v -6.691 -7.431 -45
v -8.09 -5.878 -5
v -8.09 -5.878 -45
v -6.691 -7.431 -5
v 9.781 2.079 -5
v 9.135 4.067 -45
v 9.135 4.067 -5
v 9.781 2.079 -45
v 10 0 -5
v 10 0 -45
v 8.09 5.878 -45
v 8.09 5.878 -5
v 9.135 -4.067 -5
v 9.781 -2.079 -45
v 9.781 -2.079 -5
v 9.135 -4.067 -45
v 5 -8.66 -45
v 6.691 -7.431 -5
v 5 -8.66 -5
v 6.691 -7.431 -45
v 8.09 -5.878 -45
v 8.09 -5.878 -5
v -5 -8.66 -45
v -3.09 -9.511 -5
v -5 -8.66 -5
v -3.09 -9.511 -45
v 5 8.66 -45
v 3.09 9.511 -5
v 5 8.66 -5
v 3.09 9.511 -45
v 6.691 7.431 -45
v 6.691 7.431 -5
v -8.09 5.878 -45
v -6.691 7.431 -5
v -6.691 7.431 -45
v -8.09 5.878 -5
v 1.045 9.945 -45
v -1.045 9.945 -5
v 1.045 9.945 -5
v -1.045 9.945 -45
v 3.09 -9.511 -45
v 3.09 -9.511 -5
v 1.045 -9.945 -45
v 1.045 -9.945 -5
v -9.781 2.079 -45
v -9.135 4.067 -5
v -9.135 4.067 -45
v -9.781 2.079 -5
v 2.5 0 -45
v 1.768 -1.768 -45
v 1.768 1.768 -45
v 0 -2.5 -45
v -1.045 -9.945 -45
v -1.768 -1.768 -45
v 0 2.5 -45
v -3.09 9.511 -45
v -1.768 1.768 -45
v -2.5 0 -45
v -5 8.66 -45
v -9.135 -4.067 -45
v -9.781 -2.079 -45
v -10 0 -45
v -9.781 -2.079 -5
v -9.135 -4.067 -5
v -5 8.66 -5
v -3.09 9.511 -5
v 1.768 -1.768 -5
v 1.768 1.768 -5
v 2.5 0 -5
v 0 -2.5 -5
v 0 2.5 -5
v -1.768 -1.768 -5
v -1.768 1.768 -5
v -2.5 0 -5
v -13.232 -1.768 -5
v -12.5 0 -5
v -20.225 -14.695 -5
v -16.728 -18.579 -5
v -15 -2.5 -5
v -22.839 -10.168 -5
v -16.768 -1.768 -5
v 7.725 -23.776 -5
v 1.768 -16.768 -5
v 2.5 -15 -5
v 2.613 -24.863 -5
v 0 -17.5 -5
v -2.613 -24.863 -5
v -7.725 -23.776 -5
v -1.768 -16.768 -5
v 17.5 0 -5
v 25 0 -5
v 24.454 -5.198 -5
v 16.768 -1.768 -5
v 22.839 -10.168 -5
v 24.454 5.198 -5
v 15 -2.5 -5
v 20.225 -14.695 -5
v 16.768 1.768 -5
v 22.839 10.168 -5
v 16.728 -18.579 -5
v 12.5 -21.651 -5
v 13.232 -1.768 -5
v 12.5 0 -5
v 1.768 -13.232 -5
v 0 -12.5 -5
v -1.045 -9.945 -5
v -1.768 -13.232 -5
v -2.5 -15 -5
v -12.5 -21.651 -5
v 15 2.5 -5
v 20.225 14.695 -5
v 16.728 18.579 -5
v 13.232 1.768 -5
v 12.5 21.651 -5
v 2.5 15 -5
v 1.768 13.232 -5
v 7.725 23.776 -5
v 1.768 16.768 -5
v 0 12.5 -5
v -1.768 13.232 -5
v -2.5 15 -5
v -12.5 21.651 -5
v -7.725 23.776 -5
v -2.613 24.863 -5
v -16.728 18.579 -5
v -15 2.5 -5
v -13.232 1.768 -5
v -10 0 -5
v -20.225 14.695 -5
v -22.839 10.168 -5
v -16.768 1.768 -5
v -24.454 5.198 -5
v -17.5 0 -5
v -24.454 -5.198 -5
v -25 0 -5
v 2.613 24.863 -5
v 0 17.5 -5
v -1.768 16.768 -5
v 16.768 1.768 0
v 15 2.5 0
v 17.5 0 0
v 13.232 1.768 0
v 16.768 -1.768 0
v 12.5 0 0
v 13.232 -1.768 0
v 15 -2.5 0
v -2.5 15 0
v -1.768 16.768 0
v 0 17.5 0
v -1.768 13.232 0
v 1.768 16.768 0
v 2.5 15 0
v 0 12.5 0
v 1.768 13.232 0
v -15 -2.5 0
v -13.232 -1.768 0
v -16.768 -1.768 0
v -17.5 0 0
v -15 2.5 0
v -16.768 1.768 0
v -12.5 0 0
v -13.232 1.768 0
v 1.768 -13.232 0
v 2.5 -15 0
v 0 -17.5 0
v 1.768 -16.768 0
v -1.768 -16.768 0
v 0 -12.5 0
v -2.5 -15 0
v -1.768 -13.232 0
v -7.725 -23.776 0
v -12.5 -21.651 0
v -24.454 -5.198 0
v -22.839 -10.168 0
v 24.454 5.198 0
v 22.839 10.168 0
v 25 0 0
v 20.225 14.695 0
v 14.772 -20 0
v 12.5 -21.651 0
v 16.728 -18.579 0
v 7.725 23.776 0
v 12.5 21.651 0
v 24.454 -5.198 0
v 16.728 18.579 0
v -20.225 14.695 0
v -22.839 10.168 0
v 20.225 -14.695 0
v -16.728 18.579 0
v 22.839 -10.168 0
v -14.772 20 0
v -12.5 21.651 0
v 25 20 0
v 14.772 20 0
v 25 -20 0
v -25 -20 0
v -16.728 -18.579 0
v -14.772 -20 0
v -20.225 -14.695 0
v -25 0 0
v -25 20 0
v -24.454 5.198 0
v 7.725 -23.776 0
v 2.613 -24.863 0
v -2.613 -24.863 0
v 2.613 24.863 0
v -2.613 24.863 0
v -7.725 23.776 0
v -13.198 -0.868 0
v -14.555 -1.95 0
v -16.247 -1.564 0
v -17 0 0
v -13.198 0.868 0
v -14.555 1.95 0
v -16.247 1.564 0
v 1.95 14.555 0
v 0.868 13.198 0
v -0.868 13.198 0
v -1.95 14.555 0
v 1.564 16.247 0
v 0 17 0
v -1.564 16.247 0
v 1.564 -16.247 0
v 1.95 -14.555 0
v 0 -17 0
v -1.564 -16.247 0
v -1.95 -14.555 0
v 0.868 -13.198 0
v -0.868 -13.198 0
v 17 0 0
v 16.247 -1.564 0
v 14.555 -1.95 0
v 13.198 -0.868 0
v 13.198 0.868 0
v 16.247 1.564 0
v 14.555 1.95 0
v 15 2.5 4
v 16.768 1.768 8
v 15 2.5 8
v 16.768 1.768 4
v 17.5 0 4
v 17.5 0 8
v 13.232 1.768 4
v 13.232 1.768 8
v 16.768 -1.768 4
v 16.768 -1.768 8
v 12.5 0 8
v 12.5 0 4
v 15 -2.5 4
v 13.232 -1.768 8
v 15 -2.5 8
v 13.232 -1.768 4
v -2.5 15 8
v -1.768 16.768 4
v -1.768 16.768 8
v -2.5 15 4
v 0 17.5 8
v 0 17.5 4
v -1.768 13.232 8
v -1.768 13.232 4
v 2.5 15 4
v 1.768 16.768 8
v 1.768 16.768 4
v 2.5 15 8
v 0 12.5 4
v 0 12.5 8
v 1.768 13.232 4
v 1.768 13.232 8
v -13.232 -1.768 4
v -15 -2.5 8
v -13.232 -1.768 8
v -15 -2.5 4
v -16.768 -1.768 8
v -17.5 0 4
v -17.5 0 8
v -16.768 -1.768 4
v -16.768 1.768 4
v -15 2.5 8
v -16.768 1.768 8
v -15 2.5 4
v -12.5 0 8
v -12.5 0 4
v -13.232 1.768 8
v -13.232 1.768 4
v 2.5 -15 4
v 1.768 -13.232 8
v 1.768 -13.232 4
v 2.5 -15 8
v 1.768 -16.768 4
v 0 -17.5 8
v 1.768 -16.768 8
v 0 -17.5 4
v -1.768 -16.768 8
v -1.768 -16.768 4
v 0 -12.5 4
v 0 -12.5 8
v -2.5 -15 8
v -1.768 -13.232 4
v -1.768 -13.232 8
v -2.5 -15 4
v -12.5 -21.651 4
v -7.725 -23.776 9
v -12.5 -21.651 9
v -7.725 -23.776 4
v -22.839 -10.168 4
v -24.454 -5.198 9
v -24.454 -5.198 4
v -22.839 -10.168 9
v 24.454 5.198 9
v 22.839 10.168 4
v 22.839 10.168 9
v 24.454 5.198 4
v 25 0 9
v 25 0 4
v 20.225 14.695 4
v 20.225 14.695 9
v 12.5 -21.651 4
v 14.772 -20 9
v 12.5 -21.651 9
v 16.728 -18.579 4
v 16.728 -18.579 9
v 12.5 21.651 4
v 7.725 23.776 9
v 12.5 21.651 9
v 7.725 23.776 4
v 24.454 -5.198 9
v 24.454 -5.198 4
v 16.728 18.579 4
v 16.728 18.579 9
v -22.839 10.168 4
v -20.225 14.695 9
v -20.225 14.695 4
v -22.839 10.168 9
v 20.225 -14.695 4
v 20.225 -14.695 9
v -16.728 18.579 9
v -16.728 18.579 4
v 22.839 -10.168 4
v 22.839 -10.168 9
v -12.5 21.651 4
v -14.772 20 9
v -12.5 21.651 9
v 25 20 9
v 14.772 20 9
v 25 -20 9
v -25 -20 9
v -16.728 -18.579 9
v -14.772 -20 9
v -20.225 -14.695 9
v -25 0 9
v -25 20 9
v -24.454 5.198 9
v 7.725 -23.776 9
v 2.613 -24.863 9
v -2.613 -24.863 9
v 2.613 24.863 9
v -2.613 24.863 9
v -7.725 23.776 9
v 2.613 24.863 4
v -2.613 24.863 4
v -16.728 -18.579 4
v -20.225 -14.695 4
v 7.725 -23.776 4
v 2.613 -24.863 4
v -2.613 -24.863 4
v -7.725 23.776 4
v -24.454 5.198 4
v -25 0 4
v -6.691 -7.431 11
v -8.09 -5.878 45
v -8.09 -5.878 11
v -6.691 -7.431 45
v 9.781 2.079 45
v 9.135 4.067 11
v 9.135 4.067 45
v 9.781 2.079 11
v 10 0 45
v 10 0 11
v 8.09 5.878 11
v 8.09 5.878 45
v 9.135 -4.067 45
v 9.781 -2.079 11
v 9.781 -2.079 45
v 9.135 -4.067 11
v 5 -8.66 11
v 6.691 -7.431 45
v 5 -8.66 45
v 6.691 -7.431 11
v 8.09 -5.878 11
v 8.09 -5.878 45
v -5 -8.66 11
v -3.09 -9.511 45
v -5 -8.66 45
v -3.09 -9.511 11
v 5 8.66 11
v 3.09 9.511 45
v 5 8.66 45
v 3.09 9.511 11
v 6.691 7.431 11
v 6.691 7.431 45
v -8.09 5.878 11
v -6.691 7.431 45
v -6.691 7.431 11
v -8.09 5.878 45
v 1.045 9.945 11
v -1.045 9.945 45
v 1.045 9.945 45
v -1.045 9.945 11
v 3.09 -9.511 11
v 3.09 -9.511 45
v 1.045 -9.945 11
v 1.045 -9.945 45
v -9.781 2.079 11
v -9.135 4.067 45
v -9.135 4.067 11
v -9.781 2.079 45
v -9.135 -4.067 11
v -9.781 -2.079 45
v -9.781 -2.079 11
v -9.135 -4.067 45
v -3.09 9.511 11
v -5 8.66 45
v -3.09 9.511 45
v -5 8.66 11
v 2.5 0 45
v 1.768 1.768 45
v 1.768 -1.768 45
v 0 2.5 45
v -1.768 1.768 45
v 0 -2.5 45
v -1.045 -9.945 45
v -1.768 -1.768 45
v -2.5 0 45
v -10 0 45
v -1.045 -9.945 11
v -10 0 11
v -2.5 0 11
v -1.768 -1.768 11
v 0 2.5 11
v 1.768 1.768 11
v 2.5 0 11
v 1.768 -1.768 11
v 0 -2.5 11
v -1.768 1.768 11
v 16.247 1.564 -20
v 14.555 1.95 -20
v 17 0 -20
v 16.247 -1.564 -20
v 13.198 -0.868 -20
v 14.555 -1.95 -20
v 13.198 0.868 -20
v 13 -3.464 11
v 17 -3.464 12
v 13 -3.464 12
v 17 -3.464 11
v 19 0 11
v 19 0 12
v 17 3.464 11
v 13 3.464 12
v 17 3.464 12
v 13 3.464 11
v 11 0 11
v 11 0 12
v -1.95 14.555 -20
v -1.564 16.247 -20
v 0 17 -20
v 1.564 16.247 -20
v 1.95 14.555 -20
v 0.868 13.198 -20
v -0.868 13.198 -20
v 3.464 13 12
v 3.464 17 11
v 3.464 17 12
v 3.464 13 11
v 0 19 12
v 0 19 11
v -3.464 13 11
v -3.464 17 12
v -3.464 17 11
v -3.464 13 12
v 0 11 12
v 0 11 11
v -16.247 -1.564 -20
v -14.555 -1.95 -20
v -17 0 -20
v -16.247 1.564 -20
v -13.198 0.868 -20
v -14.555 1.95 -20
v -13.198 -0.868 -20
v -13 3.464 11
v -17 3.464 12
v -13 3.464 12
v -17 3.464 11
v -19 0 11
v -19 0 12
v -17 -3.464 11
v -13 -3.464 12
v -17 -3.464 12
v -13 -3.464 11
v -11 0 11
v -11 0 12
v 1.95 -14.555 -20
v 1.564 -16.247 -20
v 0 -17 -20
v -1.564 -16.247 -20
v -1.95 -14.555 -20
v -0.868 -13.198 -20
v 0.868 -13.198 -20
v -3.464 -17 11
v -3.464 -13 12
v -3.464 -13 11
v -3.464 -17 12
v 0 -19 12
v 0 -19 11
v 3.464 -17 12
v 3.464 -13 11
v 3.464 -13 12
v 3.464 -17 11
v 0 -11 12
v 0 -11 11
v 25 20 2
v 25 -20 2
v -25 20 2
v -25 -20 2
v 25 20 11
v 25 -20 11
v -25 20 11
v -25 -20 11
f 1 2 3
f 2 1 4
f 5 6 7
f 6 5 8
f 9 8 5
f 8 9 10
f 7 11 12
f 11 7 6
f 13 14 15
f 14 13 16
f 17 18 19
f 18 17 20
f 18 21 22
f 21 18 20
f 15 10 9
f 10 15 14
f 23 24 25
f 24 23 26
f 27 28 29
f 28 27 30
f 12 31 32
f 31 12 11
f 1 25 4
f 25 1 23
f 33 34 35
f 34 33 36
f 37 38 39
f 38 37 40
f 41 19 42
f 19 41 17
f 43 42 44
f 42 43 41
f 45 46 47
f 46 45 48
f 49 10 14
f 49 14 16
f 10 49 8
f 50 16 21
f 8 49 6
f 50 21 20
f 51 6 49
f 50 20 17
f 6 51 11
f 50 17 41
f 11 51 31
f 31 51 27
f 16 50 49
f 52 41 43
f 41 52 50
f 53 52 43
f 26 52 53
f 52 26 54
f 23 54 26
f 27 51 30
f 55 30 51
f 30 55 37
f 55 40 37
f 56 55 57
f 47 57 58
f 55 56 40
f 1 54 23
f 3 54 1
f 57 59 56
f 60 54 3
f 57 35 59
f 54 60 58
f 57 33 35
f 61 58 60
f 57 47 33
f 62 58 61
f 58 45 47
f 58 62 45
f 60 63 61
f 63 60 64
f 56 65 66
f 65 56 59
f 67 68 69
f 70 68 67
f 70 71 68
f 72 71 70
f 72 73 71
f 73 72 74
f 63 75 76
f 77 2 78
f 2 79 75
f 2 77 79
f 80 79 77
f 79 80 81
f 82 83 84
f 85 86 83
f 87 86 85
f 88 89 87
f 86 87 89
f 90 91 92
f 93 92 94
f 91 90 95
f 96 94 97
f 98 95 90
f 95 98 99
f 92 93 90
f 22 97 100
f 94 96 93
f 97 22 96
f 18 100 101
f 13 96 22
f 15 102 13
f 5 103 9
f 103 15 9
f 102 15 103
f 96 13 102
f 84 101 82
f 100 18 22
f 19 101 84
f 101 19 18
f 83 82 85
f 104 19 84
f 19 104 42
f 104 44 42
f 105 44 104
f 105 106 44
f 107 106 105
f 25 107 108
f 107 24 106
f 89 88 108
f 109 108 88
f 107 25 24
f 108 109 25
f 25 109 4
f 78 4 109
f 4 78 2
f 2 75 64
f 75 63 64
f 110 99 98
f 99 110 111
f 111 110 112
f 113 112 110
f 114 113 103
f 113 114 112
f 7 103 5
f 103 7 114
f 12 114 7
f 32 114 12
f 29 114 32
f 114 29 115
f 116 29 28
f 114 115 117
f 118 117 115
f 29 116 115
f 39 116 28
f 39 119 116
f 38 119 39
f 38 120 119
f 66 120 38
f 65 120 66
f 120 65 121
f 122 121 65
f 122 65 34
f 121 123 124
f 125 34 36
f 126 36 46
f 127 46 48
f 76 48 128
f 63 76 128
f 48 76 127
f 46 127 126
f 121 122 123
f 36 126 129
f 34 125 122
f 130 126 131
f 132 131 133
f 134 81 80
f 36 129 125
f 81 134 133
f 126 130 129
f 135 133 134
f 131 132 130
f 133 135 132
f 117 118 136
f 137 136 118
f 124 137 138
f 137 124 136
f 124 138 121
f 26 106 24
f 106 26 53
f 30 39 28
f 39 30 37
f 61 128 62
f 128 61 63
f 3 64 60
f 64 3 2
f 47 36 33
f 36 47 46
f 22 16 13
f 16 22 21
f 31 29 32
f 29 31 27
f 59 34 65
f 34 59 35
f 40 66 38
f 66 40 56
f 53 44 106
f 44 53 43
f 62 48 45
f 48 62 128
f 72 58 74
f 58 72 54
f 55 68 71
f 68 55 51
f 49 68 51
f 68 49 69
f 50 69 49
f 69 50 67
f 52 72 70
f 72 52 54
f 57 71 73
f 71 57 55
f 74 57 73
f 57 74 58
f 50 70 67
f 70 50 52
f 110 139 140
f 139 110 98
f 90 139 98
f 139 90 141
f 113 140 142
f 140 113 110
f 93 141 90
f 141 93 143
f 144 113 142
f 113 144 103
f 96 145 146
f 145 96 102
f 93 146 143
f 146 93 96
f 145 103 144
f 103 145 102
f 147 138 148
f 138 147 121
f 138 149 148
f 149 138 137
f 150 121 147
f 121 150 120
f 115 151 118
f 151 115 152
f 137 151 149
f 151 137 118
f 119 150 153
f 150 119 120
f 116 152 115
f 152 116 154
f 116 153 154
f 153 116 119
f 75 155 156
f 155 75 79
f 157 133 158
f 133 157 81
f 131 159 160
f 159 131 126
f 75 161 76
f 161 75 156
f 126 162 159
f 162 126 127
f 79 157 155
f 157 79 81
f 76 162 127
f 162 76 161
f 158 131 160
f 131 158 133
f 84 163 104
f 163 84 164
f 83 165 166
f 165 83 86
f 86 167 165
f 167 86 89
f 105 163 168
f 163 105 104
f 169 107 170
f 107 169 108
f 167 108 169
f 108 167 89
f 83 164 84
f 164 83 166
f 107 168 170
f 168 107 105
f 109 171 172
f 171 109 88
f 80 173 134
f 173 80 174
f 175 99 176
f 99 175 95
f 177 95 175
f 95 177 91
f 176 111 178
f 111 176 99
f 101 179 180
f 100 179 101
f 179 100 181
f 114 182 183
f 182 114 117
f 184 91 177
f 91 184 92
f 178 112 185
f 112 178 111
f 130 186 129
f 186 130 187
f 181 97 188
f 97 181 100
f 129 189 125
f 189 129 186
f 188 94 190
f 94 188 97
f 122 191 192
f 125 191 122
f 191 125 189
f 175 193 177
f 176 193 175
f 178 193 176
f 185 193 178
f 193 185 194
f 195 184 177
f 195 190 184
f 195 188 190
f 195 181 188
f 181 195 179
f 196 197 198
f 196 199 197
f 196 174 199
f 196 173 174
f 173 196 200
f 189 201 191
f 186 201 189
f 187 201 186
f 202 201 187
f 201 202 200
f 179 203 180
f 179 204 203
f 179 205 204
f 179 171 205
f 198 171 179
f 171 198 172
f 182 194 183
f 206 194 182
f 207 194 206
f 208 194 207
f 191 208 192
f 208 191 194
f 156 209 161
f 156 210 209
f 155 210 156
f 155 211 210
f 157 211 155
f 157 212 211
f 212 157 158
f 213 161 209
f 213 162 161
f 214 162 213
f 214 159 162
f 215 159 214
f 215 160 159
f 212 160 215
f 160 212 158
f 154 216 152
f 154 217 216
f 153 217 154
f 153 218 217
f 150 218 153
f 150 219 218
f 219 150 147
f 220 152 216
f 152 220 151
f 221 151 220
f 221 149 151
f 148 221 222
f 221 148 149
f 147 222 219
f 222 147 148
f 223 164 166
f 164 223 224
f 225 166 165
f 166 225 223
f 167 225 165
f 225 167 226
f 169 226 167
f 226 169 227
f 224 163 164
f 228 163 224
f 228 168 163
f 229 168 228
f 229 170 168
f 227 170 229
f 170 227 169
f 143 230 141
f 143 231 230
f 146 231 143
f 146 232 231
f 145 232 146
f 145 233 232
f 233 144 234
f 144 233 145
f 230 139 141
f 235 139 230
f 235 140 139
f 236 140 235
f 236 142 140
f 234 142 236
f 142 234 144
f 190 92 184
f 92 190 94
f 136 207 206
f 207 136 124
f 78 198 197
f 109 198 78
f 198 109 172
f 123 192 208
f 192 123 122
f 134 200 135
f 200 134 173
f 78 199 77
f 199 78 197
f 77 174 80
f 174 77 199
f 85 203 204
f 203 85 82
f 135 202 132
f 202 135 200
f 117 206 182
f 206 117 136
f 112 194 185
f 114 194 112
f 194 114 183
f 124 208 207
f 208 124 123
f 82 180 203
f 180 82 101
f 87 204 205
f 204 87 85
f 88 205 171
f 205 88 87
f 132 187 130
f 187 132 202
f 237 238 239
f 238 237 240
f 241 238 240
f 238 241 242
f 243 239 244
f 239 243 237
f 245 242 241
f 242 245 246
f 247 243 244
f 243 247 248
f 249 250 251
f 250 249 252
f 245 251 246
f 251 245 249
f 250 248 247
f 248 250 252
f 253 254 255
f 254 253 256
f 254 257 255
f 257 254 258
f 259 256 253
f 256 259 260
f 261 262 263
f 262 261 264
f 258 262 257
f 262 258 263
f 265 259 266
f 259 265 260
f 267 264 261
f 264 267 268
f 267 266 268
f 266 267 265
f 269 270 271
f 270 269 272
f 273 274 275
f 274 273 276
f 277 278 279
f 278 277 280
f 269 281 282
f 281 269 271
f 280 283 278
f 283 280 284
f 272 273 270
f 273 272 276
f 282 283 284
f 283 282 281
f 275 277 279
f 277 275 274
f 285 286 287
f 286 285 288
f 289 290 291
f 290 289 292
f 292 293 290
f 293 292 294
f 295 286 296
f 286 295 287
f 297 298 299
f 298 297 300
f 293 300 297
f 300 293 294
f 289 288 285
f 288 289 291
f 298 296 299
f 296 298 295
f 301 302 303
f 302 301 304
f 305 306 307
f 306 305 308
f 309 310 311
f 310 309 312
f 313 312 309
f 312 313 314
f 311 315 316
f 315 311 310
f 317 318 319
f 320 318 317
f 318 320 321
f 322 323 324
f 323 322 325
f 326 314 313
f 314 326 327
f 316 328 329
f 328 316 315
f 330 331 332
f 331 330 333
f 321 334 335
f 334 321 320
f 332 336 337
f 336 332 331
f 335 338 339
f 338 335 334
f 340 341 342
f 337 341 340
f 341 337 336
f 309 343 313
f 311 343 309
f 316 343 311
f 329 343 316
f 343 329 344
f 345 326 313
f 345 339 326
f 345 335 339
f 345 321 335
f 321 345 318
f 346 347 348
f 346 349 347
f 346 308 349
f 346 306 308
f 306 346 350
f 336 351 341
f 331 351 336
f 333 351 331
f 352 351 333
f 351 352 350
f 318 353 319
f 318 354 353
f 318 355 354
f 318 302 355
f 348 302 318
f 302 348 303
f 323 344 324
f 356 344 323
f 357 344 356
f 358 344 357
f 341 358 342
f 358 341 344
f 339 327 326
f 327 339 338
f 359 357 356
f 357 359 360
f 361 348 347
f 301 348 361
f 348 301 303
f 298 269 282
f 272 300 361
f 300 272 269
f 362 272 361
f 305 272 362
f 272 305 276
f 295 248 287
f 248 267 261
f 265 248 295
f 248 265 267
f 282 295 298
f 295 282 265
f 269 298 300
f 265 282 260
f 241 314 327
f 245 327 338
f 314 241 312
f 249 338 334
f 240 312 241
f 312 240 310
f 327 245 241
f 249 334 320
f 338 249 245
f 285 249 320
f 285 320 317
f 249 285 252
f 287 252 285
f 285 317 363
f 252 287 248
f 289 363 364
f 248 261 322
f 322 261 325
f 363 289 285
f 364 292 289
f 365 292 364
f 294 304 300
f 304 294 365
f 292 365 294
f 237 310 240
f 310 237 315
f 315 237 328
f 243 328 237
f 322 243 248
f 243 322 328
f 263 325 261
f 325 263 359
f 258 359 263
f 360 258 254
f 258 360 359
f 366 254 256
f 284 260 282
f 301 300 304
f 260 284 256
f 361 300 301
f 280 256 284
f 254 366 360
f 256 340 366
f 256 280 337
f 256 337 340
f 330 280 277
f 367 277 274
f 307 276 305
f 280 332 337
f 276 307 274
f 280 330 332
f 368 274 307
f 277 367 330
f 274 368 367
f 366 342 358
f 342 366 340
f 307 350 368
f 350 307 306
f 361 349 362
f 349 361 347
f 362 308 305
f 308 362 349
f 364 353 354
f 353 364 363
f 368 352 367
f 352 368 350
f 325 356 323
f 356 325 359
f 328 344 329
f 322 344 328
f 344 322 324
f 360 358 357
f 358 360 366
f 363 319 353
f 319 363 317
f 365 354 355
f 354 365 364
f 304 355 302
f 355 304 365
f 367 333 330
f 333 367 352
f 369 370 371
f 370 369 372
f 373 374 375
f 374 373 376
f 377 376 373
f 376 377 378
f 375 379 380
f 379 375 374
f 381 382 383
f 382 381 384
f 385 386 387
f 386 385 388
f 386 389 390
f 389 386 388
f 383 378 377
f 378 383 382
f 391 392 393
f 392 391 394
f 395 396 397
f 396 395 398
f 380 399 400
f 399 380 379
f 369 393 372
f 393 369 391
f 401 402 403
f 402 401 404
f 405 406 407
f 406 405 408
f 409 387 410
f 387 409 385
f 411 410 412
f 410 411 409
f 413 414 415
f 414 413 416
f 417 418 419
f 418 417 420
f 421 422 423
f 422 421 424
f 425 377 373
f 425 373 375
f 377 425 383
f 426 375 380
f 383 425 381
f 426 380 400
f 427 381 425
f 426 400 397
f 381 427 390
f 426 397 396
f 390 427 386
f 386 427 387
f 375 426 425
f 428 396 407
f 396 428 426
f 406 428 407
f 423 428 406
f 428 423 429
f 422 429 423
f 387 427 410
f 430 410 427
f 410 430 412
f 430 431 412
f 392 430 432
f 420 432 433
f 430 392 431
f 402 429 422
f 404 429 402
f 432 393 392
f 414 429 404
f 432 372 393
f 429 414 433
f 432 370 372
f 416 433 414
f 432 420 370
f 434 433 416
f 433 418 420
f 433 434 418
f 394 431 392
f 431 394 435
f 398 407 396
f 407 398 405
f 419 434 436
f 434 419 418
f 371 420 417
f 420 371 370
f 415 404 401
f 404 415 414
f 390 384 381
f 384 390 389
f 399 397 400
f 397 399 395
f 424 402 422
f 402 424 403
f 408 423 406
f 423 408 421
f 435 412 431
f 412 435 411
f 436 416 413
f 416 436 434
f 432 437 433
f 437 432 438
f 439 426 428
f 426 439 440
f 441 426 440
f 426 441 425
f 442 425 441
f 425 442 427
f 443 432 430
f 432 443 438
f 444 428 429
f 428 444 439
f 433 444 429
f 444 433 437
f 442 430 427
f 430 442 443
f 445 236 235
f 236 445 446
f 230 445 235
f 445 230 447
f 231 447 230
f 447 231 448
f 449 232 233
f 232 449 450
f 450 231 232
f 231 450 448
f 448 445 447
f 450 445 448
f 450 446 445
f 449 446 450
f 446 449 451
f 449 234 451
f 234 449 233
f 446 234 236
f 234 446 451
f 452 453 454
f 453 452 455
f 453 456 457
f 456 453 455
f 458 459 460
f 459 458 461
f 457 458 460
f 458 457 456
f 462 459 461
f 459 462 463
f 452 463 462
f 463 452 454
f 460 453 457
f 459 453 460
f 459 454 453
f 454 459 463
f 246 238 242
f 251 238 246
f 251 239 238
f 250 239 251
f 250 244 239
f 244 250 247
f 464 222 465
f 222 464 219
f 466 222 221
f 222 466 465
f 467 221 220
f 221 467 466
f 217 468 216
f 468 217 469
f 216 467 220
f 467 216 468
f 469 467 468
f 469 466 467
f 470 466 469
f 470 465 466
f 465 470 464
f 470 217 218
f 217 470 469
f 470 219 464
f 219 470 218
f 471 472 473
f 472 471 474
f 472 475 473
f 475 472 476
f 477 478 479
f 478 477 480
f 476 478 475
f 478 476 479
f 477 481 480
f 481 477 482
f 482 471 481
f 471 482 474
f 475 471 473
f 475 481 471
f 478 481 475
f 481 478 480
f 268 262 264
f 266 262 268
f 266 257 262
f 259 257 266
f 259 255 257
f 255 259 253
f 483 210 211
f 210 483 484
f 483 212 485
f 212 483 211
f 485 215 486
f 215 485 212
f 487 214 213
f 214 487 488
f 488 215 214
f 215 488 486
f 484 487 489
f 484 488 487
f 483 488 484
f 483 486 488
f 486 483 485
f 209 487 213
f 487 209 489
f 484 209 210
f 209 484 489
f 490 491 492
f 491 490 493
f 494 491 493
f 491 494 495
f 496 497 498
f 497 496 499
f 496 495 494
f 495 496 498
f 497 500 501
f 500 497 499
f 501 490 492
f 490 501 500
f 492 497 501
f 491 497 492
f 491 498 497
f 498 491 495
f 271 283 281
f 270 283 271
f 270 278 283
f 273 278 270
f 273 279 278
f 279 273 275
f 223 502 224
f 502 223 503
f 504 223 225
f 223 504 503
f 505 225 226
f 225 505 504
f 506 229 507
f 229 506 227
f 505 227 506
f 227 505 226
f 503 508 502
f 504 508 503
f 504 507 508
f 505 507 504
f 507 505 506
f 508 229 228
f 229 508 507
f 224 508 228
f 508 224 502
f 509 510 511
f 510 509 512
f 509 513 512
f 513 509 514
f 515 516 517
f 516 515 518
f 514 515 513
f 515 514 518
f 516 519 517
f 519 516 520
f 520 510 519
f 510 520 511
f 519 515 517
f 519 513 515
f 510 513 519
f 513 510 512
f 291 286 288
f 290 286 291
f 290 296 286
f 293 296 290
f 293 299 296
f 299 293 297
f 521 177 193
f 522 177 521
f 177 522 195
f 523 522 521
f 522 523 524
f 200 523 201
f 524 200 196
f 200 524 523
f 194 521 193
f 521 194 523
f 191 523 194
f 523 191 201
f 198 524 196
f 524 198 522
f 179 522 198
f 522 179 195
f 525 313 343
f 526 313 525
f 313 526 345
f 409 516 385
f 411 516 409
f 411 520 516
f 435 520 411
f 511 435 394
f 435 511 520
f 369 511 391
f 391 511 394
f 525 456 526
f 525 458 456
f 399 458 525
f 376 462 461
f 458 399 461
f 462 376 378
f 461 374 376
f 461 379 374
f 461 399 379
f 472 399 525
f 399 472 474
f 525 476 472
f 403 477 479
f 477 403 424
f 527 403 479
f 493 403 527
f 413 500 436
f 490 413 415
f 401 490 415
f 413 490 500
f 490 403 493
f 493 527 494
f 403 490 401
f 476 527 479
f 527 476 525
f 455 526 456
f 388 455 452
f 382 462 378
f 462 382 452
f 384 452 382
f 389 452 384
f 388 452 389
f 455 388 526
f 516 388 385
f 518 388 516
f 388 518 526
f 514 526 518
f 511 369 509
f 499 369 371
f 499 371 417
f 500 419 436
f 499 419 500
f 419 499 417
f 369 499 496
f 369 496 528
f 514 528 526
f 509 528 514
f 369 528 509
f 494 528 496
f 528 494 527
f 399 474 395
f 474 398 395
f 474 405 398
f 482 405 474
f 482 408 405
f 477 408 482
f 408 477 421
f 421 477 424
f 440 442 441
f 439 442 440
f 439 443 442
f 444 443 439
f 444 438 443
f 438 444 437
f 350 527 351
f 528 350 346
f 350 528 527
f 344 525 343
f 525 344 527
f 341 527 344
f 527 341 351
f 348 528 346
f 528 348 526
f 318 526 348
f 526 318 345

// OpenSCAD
// Parameters
shaft_diameter = 20;
shaft_length = 40;
flange_diameter = 50;
flange_thickness = 5;
bolt_hole_diameter = 5;
bolt_diameter = 4;
bolt_length = 20;
nut_diameter = 8;
nut_thickness = 4;
flexible_element_thickness = 2;
flexible_element_width = 40;
flexible_element_length = 50;
bolt_spacing = 30;

// Module for shaft
module shaft() {
    difference() {
        cylinder(h = shaft_length, d = shaft_diameter, center = true);
        cylinder(h = shaft_length, d = bolt_hole_diameter, center = true);
    }
}

// Module for flange plate
module flange_plate() {
    difference() {
        cylinder(h = flange_thickness, d = flange_diameter, center = true);
        for (i = [0:3]) {
            rotate([0, 0, i * 90])
                translate([bolt_spacing / 2, 0, 0])
                cylinder(h = flange_thickness + 2, d = bolt_hole_diameter, center = true);
        }
    }
}

// Module for flexible element
module flexible_element() {
    translate([0, 0, -flexible_element_thickness / 2])
        cube([flexible_element_length, flexible_element_width, flexible_element_thickness], center = true);
}

// Module for bolt
module bolt() {
    cylinder(h = bolt_length, d = bolt_diameter, center = true);
}

// Module for nut
module nut() {
    cylinder(h = nut_thickness, d = nut_diameter, $fn = 6, center = true);
}

// Assembly
module flexible_coupling() {
    // Input shaft
    translate([0, 0, -shaft_length / 2 - flange_thickness])
        shaft();

    // First flange plate
    translate([0, 0, -flange_thickness / 2])
        flange_plate();

    // First flexible element
    translate([0, 0, flexible_element_thickness])
        flexible_element();

    // Second flange plate
    translate([0, 0, flange_thickness / 2 + flexible_element_thickness * 2])
        flange_plate();

    // Second flexible element
    translate([0, 0, flange_thickness + flexible_element_thickness * 3])
        flexible_element();

    // Output shaft
    translate([0, 0, shaft_length / 2 + flange_thickness])
        shaft();

    // Bolts and nuts
    for (i = [0:3]) {
        rotate([0, 0, i * 90]) {
            translate([bolt_spacing / 2, 0, 0]) {
                translate([0, 0, -bolt_length / 2])
                    bolt();
                translate([0, 0, bolt_length / 2])
                    nut();
            }
        }
    }
}

// Render the model
flexible_coupling();
